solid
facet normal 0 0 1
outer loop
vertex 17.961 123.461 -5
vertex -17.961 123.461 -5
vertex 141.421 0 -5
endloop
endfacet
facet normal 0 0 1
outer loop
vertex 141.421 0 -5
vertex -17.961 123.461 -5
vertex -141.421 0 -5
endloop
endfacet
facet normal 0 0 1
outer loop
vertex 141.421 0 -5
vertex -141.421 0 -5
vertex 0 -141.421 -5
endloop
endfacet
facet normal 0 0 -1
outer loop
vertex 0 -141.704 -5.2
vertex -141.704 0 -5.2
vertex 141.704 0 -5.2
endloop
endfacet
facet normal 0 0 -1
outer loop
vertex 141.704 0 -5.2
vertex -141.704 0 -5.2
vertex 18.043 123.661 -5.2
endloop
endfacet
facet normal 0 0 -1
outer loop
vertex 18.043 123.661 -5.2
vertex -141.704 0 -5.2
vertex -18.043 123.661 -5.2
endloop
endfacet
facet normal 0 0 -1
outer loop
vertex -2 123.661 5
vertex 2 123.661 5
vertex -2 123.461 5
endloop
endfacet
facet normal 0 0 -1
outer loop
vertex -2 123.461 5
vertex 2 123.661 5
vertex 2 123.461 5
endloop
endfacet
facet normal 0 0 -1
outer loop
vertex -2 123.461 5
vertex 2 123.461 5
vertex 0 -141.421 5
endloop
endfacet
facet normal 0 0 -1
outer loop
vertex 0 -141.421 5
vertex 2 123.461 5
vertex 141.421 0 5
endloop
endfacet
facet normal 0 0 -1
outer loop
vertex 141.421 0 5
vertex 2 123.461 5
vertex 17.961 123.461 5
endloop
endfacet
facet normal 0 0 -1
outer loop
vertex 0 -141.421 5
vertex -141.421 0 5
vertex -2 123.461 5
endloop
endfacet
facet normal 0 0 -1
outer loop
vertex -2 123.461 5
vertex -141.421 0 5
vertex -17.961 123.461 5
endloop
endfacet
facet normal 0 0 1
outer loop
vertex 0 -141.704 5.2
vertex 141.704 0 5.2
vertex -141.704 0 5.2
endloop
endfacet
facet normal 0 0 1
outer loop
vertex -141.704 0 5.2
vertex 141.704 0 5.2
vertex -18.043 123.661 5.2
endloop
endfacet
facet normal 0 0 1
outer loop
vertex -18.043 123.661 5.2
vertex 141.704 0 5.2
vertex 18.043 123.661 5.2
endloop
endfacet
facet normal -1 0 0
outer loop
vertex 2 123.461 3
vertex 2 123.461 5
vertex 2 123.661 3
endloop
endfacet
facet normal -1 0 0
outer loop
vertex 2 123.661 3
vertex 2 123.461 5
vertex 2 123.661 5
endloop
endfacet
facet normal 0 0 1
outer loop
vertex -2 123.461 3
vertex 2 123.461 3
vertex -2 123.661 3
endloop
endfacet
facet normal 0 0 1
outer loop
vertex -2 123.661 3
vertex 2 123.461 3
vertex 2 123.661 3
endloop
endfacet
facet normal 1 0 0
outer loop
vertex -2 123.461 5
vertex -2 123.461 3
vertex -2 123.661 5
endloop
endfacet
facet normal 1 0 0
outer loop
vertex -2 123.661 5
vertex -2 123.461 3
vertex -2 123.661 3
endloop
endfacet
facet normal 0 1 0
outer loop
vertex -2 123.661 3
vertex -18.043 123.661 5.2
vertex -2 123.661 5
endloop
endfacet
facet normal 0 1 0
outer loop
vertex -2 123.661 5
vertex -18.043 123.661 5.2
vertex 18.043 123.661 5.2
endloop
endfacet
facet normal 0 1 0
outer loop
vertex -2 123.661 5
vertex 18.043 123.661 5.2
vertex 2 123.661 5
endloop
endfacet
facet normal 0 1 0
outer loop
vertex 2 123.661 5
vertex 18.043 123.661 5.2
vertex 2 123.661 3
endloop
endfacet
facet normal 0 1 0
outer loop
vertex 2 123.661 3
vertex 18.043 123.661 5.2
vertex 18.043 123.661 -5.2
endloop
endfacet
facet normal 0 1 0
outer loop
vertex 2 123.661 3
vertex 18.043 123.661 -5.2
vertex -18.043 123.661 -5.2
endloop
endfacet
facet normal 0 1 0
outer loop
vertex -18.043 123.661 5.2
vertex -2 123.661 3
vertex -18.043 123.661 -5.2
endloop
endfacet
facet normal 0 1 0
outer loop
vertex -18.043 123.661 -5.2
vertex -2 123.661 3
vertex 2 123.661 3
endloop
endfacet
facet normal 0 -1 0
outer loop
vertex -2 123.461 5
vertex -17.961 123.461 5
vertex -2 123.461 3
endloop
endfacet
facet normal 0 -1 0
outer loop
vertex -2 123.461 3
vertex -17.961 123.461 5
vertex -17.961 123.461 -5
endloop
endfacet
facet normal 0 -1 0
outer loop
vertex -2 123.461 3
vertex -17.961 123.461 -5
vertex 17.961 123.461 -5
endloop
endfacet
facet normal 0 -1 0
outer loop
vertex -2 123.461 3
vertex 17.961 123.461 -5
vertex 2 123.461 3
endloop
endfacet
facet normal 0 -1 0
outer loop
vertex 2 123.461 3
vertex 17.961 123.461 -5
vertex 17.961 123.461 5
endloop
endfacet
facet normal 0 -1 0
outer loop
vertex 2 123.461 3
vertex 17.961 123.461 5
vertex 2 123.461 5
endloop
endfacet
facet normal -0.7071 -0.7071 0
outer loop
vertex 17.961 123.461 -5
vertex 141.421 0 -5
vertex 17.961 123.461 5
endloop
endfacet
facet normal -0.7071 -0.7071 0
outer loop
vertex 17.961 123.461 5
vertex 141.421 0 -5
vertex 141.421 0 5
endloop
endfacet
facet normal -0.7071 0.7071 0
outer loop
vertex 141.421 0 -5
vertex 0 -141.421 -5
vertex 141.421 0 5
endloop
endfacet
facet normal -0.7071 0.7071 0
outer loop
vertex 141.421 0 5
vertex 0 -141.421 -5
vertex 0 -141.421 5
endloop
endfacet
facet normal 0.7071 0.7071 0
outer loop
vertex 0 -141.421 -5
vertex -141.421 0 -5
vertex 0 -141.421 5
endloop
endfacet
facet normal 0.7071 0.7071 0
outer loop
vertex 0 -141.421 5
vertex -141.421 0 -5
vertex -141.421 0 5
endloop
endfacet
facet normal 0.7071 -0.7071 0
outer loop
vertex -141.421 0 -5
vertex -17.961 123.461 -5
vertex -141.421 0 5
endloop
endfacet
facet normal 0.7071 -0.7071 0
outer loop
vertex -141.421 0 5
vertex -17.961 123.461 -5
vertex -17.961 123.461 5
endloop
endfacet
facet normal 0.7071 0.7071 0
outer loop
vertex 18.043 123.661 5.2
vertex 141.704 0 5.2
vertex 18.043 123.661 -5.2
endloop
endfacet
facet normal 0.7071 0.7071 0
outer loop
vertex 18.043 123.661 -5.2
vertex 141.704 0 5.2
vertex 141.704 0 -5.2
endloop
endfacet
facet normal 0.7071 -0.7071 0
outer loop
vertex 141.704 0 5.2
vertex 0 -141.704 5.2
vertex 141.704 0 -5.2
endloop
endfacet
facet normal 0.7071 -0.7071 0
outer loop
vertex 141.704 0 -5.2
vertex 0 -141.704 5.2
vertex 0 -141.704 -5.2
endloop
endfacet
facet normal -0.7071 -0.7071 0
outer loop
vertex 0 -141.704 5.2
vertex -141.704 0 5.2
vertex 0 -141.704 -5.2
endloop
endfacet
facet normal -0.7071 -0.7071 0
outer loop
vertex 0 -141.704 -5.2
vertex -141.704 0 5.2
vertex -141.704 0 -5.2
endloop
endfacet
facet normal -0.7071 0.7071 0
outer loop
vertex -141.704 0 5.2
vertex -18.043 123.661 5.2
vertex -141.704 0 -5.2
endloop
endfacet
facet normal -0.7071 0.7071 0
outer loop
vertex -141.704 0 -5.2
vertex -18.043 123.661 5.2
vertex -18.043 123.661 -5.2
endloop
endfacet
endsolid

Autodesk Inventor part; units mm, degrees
ref_plane "YZ Plane" through (0, 0, 0) normal (1, 0, 0) x (0, 1, 0)
ref_plane "XZ Plane" through (0, 0, 0) normal (0, 1, 0) x (-1, 0, 0)
ref_plane "XY Plane" through (0, 0, 0) normal (0, 0, 1) x (1, 0, 0)
sketch "Sketch1" plane through (0, 0, 0) normal (0, 0, 1) x (1, 0, 0)
  line L0 (-141.4214, 0) -> (-17.9605, 123.4608)
  line L1 (17.9605, 123.4608) -> (141.4214, 0)
  line L2 (141.4214, 0) -> (0, -141.4214)
  line L3 (0, -141.4214) -> (-141.4214, 0)
  line L4 (-141.4214, 0) -> (141.4214, 0) construction
  line L5 (0, 141.4214) -> (0, -141.4214) construction
  line L6 (17.9605, 123.4608) -> (-17.9605, 123.4608)
  line L7 (-18.0434, 123.6608) -> (18.0434, 123.6608)
  line L8 (18.0434, 123.6608) -> (141.7042, 0)
  line L9 (141.7042, 0) -> (0, -141.7042)
  line L10 (0, -141.7042) -> (-141.7042, 0)
  line L11 (-141.7042, 0) -> (-18.0434, 123.6608)
  point P0 (0, 0)
  dimension "d0" = 200
  dimension "d1" = 200
  dimension "d7" = 25.4
  dimension "d8" = 25.4
  dimension "d9" = 0.2
extrude "Extrusion1" add sketch "Sketch1" along normal mid plane 10
sketch "Sketch4" plane through (-18.0434, 123.6608, 5) normal (0, 1, 0) x (1, 0, 0)
  line L0 (16.0434, 0) -> (20.0434, 0)
  line L1 (20.0434, 0) -> (20.0434, 2)
  line L2 (20.0434, 2) -> (16.0434, 2)
  line L3 (16.0434, 2) -> (16.0434, 0)
  line L4 (36.0867, 0) -> (0, 0) projected
  point P0 (18.0434, 5)
  point P1 (18.0434, 0)
  dimension "d16" = 4
  dimension "d17" = 2
extrude "Extrusion3" cut sketch "Sketch4" against normal up to surface (0.2 mm away)
sketch "Sketch2" plane through (0, 0, 5) normal (0, 0, 1) x (1, 0, 0)
  line L0 (141.7042, 0) -> (0, -141.7042) projected
  line L1 (18.0434, 123.6608) -> (141.7042, 0) projected
  line L2 (-18.0434, 123.6608) -> (18.0434, 123.6608) projected
  line L3 (-141.7042, 0) -> (-18.0434, 123.6608) projected
  line L4 (0, -141.7042) -> (-141.7042, 0) projected
extrude "Extrusion2" add sketch "Sketch2" along normal blind 0.2
mirror "Mirror1" about plane through (0, 0, 0) normal (0, 0, 1) of "Extrusion2"
equation "\"d0\" = ScintillatorWidth"
equation "\"d1\" = ScintillatorHeight"
equation "\"d7\" = cornerChamfer"
equation "\"d8\" = d7"
equation "\"d9\" = silveringThickness"
equation "\"d3\" = ScintillatorThickness"
equation "\"d5\" = silveringThickness"
equation "\"ScintillatorThickness\" = 10"
equation "\"OpticalFiberClearence\" = 0.15"
equation "\"ScintillatorEdgeClearence\" = 3"
equation "\"ScintillatorWidth\" = 200"
equation "\"ScintillatorHeight\" = 200"
equation "\"ShallowTrackDepth\" = 1.3"
equation "\"DeepTrackDepth\" = 5.571"
equation "\"FiberEdgeOffsett\" = 5"
equation "\"LoopLargeTrackRatio\" = 1.5"
equation "\"FiberSensorClerence\" = 0.5"
equation "\"MountingScrewOffsett\" = 9"
equation "\"FoilThickness\" = 0.2"
equation "\"silveringThickness\" = 0.2"
equation "\"mppcMountDepth\" = 6.35"
equation "\"opticalFiberClearence\" = 0.071"
equation "\"scintillatorEdgeClearence\" = 3"
equation "\"fiberEdgeOffsett\" = 5"
equation "\"shallowTrackDepth\" = 1.142"
equation "\"deepTrackDepth\" = 5.571"
equation "\"opticalFiberDiameter\" = 1"
equation "\"mountingSpacing\" = 18"
equation "\"cornerChamfer\" = 25.4"
equation "\"SmallTrackDiameter\" = 175"
properties part number "silvering" material "Silver"
